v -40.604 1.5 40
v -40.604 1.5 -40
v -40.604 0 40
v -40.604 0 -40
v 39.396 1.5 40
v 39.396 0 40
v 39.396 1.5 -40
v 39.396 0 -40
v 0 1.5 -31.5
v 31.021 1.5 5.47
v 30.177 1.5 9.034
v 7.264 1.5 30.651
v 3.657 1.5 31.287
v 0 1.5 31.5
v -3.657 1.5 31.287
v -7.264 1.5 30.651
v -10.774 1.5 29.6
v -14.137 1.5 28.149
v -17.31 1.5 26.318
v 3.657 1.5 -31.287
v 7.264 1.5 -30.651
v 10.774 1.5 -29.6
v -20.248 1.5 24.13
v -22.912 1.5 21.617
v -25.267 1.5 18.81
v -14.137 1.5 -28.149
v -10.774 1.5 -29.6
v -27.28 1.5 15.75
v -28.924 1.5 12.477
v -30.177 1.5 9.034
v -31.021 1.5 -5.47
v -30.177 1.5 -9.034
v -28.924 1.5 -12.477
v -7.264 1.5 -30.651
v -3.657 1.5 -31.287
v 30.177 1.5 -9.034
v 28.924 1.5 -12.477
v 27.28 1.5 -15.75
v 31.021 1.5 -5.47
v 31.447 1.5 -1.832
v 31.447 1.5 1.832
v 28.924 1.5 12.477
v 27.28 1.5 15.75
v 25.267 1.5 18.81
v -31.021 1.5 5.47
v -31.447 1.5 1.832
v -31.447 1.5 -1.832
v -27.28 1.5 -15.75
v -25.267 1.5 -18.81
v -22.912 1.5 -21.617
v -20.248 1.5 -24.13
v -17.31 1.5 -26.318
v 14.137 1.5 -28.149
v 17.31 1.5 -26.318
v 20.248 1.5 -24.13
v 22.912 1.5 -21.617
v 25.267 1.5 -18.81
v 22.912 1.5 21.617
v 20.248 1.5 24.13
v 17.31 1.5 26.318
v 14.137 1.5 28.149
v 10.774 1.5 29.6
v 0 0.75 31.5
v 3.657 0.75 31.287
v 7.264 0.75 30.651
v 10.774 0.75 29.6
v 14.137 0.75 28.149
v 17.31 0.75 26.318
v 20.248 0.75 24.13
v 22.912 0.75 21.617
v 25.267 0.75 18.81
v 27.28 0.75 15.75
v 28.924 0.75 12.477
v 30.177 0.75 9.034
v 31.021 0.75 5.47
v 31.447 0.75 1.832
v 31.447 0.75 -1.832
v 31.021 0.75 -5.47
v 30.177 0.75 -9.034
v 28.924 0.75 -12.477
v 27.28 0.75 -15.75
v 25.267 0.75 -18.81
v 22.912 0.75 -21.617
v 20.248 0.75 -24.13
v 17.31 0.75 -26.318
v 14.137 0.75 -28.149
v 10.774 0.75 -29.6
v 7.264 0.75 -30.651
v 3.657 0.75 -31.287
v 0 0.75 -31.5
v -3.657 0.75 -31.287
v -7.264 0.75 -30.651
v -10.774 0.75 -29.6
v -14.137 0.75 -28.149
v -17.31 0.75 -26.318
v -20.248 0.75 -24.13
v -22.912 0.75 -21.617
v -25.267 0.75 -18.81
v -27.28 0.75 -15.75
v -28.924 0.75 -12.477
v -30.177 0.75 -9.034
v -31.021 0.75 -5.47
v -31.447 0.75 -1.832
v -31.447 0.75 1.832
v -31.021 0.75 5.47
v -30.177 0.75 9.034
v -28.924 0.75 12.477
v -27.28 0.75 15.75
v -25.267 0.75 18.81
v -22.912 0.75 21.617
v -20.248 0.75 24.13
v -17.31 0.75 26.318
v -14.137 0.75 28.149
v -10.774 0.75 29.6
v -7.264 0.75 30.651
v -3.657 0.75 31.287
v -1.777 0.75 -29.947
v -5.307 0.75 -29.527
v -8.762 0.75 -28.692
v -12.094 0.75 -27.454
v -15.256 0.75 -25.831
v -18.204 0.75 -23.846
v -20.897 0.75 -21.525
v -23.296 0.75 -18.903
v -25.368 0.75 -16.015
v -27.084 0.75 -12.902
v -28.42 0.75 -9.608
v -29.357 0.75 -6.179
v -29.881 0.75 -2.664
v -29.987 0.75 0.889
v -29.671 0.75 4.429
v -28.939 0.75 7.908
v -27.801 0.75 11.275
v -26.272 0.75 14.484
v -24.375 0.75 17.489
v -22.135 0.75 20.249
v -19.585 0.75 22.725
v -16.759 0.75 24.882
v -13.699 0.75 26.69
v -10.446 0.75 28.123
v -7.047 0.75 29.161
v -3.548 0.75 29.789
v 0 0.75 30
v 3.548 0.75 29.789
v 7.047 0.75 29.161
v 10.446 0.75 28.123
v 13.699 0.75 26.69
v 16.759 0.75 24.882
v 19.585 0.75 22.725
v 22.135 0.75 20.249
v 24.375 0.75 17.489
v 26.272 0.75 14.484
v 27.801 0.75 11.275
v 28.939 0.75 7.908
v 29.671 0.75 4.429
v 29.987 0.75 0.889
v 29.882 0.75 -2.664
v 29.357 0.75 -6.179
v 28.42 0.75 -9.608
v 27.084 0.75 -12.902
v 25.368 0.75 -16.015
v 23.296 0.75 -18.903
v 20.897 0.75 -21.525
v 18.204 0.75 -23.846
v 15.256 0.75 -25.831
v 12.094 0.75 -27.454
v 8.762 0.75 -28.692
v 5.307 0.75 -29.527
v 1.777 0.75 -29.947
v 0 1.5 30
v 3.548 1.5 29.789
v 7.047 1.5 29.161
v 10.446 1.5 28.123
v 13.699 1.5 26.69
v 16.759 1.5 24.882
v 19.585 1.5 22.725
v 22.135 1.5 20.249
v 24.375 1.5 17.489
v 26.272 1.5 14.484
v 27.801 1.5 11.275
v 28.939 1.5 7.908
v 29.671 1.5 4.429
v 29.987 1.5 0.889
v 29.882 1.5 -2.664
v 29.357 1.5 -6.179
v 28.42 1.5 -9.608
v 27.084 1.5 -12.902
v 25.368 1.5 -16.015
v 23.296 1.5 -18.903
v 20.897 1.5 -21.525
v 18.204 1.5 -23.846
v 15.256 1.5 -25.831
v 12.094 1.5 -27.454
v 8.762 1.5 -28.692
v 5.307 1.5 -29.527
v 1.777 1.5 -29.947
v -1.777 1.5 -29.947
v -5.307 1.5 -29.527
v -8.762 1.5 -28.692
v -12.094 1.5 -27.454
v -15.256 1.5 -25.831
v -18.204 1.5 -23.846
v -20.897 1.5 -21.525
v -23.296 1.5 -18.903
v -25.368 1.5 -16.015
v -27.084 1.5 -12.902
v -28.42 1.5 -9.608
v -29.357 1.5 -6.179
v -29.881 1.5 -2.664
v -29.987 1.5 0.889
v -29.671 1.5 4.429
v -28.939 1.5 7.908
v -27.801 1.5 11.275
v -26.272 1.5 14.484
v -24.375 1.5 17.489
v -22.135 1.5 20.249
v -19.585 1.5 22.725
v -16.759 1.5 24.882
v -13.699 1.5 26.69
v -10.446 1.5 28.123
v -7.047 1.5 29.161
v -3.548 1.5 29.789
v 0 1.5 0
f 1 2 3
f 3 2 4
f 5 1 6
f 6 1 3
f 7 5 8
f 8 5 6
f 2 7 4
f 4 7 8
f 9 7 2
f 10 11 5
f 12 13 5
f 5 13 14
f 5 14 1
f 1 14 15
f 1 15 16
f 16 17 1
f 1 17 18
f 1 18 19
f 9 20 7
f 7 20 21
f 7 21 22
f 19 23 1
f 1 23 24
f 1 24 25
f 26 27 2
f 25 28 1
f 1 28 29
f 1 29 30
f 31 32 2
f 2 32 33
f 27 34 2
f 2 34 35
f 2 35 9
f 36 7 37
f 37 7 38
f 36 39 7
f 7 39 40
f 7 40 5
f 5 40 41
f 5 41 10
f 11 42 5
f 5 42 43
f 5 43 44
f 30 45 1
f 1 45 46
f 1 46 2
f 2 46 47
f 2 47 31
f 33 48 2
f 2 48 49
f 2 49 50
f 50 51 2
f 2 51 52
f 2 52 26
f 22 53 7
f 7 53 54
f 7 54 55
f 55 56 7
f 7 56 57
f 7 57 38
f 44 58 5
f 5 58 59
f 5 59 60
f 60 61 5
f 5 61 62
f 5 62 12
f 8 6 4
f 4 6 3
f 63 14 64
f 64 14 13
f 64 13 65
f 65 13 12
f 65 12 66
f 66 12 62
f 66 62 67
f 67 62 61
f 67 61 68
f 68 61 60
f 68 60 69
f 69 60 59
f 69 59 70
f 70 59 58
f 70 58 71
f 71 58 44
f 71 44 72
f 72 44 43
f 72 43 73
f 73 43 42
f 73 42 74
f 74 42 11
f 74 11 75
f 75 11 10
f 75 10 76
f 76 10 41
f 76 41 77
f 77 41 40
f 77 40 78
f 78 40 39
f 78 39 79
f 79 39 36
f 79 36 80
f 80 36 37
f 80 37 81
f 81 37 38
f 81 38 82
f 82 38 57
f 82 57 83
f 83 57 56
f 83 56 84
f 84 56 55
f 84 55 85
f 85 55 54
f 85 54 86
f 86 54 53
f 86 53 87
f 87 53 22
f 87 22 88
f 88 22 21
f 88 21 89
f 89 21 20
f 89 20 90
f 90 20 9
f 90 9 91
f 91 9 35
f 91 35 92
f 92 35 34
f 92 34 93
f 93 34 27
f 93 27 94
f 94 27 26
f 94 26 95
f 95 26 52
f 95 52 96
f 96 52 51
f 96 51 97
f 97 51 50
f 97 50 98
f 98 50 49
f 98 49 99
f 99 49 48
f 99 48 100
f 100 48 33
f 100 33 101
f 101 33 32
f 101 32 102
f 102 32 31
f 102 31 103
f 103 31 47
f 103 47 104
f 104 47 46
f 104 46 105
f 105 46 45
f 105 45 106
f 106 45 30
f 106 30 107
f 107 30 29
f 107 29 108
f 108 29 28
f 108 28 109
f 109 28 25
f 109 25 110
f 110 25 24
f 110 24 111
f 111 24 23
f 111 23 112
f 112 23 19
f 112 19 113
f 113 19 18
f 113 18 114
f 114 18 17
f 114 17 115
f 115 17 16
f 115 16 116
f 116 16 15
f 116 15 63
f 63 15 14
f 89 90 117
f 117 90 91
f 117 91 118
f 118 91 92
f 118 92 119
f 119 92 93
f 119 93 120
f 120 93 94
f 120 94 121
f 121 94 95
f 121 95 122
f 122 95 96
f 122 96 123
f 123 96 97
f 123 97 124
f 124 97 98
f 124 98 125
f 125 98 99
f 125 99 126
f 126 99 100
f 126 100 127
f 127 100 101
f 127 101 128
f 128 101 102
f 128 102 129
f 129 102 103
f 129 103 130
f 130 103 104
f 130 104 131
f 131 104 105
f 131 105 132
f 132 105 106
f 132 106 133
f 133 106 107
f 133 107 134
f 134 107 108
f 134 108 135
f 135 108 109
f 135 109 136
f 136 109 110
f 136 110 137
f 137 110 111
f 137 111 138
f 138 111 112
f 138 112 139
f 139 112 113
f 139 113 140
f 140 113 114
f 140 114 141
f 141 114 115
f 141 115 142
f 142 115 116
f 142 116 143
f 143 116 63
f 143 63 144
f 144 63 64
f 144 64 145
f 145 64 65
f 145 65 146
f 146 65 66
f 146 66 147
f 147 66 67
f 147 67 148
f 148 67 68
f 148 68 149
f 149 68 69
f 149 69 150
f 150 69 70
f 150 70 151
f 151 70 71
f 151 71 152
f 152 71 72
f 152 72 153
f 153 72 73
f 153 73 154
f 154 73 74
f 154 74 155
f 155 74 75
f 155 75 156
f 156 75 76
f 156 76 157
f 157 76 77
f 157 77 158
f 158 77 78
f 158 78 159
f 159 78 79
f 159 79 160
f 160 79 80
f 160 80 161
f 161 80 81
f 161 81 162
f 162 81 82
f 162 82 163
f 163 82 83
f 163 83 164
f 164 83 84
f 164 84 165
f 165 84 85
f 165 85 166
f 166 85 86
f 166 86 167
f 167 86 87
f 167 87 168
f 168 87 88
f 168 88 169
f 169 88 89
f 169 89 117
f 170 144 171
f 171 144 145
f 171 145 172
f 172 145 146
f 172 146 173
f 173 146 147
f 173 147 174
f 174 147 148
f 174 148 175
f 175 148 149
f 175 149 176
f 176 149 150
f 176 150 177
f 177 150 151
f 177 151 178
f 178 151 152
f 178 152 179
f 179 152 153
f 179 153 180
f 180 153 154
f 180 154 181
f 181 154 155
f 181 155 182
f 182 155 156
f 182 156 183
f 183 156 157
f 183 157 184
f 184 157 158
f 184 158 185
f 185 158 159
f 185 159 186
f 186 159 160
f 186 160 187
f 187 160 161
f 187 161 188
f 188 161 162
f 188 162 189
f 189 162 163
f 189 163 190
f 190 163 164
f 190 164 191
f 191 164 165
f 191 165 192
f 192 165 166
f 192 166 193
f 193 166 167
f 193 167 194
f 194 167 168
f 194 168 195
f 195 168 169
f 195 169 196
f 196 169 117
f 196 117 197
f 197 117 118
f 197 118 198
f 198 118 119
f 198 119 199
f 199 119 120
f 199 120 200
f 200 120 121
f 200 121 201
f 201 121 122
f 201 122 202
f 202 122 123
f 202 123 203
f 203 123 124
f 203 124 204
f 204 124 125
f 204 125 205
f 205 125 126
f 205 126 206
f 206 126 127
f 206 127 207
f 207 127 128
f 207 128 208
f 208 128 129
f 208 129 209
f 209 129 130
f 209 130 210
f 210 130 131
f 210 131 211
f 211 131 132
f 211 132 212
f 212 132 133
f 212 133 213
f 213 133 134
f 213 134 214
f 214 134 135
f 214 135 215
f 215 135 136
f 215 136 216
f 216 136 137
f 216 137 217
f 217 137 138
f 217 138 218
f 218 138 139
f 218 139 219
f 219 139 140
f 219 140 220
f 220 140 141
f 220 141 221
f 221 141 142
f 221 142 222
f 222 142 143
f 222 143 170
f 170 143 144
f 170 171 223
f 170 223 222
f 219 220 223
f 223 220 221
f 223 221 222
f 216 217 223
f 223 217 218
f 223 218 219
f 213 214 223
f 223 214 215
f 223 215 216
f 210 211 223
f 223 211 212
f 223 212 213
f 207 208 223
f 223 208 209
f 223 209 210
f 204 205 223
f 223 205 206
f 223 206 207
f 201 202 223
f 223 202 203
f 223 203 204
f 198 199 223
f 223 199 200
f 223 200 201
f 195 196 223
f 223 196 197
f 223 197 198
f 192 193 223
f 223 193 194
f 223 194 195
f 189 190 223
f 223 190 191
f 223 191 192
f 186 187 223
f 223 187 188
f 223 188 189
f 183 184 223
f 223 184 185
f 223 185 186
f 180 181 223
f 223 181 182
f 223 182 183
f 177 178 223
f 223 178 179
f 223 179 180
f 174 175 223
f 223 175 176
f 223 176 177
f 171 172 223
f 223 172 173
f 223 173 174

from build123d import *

# Parameters (mm, degrees)
SKETCH1_W           = 80
SKETCH1_H           = 80
BOSS_EXTRUDE2_DEPTH = 1.5
SKETCH2_R           = 31.5
SKETCH2_R_2         = 30
CUT_EXTRUDE2_DEPTH  = 0.75


with BuildPart() as part:
    # Sketch1 → Boss-Extrude2 (new body)
    with BuildSketch(Plane(origin=(0, 0, 0), x_dir=(1, 0, 0), z_dir=(0, 1, 0))):
        with Locations((-0.604095773, 0)):
            Rectangle(SKETCH1_W, SKETCH1_H)
    extrude(amount=BOSS_EXTRUDE2_DEPTH)

    # Sketch2 → Cut-Extrude2 (cut)
    with BuildSketch(Plane(origin=(0, 1.5, 0), x_dir=(1, 0, 0), z_dir=(0, 1, 0))):
        with Locations(Location((0, 0, 0), (0, 0, 270))):
            Circle(SKETCH2_R)
        with Locations(Location((0, 0, 0), (0, 0, 270))):
            Circle(SKETCH2_R_2, mode=Mode.SUBTRACT)
    extrude(amount=-CUT_EXTRUDE2_DEPTH, mode=Mode.SUBTRACT)


solid = part.part
